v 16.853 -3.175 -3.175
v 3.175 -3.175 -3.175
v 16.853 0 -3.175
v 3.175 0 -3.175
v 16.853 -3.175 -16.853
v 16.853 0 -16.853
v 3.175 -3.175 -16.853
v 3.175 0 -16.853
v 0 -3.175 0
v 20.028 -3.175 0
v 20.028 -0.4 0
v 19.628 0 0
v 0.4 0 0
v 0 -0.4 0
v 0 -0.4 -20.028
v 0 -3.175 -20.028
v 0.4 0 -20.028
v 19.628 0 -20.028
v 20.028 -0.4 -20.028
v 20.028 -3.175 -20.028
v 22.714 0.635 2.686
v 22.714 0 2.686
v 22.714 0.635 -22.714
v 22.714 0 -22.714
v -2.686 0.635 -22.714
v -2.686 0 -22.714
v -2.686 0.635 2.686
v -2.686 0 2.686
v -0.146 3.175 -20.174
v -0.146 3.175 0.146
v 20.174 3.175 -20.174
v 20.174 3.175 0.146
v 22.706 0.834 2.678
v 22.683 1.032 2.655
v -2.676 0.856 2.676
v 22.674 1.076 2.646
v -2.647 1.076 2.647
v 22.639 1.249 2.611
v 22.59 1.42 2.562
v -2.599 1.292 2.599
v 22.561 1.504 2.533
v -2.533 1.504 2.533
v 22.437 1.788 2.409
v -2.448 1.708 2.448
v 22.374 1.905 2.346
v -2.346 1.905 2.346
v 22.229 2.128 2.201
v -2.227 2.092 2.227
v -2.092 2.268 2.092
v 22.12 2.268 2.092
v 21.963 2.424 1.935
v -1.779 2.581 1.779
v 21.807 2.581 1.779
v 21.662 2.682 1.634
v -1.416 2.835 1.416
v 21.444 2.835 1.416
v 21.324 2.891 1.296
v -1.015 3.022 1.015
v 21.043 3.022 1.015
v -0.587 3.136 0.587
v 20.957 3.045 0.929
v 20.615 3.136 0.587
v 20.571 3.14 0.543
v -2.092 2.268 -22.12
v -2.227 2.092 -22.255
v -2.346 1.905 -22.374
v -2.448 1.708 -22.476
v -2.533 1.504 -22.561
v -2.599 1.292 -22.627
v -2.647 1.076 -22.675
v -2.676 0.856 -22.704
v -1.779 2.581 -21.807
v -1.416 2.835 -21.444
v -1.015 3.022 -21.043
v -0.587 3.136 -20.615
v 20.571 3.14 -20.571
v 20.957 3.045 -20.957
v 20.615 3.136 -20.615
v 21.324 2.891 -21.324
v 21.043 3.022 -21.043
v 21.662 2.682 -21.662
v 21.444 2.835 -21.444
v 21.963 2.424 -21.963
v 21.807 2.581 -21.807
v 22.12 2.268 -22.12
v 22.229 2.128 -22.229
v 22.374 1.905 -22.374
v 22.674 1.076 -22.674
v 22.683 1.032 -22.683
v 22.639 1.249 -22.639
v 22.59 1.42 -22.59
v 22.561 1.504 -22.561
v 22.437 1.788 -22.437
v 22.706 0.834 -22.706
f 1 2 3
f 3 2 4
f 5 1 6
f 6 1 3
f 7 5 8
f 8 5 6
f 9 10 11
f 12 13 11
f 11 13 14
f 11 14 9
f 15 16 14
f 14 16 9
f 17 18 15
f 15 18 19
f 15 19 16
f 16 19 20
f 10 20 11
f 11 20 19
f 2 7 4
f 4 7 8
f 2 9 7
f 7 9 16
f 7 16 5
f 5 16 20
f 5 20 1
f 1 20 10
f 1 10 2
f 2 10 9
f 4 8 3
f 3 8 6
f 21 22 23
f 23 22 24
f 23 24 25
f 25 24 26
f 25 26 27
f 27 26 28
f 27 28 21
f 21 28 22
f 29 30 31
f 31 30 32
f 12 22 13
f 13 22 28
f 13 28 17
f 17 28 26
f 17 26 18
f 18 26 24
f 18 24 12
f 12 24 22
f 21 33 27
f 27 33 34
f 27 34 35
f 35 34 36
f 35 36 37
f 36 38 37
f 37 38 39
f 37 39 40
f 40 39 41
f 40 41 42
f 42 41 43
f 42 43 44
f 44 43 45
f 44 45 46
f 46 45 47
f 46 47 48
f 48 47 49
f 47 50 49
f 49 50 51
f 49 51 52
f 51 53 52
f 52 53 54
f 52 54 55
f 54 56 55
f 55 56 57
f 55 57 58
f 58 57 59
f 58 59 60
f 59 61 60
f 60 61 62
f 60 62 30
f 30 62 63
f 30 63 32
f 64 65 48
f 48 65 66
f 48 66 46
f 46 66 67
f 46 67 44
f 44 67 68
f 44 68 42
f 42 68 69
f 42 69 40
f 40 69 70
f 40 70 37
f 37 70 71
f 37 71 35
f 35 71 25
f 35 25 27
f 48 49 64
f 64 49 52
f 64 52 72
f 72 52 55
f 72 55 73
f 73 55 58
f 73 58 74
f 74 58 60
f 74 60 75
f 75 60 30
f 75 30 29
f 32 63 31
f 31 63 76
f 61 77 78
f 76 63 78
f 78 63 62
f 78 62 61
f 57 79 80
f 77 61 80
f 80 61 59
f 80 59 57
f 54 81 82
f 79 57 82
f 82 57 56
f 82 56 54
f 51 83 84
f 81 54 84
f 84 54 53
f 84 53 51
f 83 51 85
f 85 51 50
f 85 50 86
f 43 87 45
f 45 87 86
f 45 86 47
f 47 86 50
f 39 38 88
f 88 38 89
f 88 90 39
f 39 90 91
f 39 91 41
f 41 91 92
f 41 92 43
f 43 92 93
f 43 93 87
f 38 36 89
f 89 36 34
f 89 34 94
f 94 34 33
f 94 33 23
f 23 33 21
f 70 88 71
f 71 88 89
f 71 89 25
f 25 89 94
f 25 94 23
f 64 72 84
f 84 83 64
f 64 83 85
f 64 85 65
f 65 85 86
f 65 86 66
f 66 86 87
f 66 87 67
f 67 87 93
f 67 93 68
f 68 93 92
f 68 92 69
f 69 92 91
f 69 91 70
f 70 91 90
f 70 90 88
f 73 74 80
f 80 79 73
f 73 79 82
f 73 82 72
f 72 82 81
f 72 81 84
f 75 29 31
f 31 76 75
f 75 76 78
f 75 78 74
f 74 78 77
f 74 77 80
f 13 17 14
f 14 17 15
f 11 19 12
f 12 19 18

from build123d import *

# Parameters (mm, degrees)
SKETCH2_W           = 20.028
SKETCH2_H           = 20.028
SKETCH2_W_2         = 13.678
SKETCH2_H_2         = 13.678
BOSS_EXTRUDE2_DEPTH = 3.175
SKETCH2_3_W         = 25.4
SKETCH2_3_H         = 25.4
BOSS_EXTRUDE3_DEPTH = 3.175
FILLET1_R           = 2.54
CUT_EXTRUDE1_DEPTH  = 33.278974844


with BuildPart() as part:
    # Sketch2 → Boss-Extrude2 (new body)
    with BuildSketch(Plane(origin=(0, 0, 0), x_dir=(1, 0, 0), z_dir=(0, 1, 0))):
        with Locations((10.014, 10.014)):
            Rectangle(SKETCH2_W, SKETCH2_H)
        with Locations((10.014, 10.014)):
            Rectangle(SKETCH2_W_2, SKETCH2_H_2, mode=Mode.SUBTRACT)
    extrude(amount=-BOSS_EXTRUDE2_DEPTH)

    # Sketch2<3> → Boss-Extrude3 (add)
    with BuildSketch(Plane(origin=(0, 0, 0), x_dir=(1, 0, 0), z_dir=(0, 1, 0))):
        with Locations((10.014, 10.014)):
            Rectangle(SKETCH2_3_W, SKETCH2_3_H)
    extrude(amount=BOSS_EXTRUDE3_DEPTH)

    # Fillet1
    fillet1_edges = [part.edges().sort_by_distance(p)[0] for p in [
        (10.014, 3.175, -22.714),
        (22.714, 3.175, -10.014),
        (10.014, 3.175, 2.686),
        (-2.686, 3.175, -10.014),
    ]]
    fillet(fillet1_edges, radius=FILLET1_R)

    # Sketch3 → Cut-Extrude1 (cut, through all)
    with BuildSketch(Plane.XY):
        Polygon((0, -0.4), (0.4, 0), (0, 0), align=None)
        Polygon((20.028, -0.4), (19.628, 0), (20.028, 0), align=None)
    extrude(amount=-CUT_EXTRUDE1_DEPTH, mode=Mode.SUBTRACT)


solid = part.part
